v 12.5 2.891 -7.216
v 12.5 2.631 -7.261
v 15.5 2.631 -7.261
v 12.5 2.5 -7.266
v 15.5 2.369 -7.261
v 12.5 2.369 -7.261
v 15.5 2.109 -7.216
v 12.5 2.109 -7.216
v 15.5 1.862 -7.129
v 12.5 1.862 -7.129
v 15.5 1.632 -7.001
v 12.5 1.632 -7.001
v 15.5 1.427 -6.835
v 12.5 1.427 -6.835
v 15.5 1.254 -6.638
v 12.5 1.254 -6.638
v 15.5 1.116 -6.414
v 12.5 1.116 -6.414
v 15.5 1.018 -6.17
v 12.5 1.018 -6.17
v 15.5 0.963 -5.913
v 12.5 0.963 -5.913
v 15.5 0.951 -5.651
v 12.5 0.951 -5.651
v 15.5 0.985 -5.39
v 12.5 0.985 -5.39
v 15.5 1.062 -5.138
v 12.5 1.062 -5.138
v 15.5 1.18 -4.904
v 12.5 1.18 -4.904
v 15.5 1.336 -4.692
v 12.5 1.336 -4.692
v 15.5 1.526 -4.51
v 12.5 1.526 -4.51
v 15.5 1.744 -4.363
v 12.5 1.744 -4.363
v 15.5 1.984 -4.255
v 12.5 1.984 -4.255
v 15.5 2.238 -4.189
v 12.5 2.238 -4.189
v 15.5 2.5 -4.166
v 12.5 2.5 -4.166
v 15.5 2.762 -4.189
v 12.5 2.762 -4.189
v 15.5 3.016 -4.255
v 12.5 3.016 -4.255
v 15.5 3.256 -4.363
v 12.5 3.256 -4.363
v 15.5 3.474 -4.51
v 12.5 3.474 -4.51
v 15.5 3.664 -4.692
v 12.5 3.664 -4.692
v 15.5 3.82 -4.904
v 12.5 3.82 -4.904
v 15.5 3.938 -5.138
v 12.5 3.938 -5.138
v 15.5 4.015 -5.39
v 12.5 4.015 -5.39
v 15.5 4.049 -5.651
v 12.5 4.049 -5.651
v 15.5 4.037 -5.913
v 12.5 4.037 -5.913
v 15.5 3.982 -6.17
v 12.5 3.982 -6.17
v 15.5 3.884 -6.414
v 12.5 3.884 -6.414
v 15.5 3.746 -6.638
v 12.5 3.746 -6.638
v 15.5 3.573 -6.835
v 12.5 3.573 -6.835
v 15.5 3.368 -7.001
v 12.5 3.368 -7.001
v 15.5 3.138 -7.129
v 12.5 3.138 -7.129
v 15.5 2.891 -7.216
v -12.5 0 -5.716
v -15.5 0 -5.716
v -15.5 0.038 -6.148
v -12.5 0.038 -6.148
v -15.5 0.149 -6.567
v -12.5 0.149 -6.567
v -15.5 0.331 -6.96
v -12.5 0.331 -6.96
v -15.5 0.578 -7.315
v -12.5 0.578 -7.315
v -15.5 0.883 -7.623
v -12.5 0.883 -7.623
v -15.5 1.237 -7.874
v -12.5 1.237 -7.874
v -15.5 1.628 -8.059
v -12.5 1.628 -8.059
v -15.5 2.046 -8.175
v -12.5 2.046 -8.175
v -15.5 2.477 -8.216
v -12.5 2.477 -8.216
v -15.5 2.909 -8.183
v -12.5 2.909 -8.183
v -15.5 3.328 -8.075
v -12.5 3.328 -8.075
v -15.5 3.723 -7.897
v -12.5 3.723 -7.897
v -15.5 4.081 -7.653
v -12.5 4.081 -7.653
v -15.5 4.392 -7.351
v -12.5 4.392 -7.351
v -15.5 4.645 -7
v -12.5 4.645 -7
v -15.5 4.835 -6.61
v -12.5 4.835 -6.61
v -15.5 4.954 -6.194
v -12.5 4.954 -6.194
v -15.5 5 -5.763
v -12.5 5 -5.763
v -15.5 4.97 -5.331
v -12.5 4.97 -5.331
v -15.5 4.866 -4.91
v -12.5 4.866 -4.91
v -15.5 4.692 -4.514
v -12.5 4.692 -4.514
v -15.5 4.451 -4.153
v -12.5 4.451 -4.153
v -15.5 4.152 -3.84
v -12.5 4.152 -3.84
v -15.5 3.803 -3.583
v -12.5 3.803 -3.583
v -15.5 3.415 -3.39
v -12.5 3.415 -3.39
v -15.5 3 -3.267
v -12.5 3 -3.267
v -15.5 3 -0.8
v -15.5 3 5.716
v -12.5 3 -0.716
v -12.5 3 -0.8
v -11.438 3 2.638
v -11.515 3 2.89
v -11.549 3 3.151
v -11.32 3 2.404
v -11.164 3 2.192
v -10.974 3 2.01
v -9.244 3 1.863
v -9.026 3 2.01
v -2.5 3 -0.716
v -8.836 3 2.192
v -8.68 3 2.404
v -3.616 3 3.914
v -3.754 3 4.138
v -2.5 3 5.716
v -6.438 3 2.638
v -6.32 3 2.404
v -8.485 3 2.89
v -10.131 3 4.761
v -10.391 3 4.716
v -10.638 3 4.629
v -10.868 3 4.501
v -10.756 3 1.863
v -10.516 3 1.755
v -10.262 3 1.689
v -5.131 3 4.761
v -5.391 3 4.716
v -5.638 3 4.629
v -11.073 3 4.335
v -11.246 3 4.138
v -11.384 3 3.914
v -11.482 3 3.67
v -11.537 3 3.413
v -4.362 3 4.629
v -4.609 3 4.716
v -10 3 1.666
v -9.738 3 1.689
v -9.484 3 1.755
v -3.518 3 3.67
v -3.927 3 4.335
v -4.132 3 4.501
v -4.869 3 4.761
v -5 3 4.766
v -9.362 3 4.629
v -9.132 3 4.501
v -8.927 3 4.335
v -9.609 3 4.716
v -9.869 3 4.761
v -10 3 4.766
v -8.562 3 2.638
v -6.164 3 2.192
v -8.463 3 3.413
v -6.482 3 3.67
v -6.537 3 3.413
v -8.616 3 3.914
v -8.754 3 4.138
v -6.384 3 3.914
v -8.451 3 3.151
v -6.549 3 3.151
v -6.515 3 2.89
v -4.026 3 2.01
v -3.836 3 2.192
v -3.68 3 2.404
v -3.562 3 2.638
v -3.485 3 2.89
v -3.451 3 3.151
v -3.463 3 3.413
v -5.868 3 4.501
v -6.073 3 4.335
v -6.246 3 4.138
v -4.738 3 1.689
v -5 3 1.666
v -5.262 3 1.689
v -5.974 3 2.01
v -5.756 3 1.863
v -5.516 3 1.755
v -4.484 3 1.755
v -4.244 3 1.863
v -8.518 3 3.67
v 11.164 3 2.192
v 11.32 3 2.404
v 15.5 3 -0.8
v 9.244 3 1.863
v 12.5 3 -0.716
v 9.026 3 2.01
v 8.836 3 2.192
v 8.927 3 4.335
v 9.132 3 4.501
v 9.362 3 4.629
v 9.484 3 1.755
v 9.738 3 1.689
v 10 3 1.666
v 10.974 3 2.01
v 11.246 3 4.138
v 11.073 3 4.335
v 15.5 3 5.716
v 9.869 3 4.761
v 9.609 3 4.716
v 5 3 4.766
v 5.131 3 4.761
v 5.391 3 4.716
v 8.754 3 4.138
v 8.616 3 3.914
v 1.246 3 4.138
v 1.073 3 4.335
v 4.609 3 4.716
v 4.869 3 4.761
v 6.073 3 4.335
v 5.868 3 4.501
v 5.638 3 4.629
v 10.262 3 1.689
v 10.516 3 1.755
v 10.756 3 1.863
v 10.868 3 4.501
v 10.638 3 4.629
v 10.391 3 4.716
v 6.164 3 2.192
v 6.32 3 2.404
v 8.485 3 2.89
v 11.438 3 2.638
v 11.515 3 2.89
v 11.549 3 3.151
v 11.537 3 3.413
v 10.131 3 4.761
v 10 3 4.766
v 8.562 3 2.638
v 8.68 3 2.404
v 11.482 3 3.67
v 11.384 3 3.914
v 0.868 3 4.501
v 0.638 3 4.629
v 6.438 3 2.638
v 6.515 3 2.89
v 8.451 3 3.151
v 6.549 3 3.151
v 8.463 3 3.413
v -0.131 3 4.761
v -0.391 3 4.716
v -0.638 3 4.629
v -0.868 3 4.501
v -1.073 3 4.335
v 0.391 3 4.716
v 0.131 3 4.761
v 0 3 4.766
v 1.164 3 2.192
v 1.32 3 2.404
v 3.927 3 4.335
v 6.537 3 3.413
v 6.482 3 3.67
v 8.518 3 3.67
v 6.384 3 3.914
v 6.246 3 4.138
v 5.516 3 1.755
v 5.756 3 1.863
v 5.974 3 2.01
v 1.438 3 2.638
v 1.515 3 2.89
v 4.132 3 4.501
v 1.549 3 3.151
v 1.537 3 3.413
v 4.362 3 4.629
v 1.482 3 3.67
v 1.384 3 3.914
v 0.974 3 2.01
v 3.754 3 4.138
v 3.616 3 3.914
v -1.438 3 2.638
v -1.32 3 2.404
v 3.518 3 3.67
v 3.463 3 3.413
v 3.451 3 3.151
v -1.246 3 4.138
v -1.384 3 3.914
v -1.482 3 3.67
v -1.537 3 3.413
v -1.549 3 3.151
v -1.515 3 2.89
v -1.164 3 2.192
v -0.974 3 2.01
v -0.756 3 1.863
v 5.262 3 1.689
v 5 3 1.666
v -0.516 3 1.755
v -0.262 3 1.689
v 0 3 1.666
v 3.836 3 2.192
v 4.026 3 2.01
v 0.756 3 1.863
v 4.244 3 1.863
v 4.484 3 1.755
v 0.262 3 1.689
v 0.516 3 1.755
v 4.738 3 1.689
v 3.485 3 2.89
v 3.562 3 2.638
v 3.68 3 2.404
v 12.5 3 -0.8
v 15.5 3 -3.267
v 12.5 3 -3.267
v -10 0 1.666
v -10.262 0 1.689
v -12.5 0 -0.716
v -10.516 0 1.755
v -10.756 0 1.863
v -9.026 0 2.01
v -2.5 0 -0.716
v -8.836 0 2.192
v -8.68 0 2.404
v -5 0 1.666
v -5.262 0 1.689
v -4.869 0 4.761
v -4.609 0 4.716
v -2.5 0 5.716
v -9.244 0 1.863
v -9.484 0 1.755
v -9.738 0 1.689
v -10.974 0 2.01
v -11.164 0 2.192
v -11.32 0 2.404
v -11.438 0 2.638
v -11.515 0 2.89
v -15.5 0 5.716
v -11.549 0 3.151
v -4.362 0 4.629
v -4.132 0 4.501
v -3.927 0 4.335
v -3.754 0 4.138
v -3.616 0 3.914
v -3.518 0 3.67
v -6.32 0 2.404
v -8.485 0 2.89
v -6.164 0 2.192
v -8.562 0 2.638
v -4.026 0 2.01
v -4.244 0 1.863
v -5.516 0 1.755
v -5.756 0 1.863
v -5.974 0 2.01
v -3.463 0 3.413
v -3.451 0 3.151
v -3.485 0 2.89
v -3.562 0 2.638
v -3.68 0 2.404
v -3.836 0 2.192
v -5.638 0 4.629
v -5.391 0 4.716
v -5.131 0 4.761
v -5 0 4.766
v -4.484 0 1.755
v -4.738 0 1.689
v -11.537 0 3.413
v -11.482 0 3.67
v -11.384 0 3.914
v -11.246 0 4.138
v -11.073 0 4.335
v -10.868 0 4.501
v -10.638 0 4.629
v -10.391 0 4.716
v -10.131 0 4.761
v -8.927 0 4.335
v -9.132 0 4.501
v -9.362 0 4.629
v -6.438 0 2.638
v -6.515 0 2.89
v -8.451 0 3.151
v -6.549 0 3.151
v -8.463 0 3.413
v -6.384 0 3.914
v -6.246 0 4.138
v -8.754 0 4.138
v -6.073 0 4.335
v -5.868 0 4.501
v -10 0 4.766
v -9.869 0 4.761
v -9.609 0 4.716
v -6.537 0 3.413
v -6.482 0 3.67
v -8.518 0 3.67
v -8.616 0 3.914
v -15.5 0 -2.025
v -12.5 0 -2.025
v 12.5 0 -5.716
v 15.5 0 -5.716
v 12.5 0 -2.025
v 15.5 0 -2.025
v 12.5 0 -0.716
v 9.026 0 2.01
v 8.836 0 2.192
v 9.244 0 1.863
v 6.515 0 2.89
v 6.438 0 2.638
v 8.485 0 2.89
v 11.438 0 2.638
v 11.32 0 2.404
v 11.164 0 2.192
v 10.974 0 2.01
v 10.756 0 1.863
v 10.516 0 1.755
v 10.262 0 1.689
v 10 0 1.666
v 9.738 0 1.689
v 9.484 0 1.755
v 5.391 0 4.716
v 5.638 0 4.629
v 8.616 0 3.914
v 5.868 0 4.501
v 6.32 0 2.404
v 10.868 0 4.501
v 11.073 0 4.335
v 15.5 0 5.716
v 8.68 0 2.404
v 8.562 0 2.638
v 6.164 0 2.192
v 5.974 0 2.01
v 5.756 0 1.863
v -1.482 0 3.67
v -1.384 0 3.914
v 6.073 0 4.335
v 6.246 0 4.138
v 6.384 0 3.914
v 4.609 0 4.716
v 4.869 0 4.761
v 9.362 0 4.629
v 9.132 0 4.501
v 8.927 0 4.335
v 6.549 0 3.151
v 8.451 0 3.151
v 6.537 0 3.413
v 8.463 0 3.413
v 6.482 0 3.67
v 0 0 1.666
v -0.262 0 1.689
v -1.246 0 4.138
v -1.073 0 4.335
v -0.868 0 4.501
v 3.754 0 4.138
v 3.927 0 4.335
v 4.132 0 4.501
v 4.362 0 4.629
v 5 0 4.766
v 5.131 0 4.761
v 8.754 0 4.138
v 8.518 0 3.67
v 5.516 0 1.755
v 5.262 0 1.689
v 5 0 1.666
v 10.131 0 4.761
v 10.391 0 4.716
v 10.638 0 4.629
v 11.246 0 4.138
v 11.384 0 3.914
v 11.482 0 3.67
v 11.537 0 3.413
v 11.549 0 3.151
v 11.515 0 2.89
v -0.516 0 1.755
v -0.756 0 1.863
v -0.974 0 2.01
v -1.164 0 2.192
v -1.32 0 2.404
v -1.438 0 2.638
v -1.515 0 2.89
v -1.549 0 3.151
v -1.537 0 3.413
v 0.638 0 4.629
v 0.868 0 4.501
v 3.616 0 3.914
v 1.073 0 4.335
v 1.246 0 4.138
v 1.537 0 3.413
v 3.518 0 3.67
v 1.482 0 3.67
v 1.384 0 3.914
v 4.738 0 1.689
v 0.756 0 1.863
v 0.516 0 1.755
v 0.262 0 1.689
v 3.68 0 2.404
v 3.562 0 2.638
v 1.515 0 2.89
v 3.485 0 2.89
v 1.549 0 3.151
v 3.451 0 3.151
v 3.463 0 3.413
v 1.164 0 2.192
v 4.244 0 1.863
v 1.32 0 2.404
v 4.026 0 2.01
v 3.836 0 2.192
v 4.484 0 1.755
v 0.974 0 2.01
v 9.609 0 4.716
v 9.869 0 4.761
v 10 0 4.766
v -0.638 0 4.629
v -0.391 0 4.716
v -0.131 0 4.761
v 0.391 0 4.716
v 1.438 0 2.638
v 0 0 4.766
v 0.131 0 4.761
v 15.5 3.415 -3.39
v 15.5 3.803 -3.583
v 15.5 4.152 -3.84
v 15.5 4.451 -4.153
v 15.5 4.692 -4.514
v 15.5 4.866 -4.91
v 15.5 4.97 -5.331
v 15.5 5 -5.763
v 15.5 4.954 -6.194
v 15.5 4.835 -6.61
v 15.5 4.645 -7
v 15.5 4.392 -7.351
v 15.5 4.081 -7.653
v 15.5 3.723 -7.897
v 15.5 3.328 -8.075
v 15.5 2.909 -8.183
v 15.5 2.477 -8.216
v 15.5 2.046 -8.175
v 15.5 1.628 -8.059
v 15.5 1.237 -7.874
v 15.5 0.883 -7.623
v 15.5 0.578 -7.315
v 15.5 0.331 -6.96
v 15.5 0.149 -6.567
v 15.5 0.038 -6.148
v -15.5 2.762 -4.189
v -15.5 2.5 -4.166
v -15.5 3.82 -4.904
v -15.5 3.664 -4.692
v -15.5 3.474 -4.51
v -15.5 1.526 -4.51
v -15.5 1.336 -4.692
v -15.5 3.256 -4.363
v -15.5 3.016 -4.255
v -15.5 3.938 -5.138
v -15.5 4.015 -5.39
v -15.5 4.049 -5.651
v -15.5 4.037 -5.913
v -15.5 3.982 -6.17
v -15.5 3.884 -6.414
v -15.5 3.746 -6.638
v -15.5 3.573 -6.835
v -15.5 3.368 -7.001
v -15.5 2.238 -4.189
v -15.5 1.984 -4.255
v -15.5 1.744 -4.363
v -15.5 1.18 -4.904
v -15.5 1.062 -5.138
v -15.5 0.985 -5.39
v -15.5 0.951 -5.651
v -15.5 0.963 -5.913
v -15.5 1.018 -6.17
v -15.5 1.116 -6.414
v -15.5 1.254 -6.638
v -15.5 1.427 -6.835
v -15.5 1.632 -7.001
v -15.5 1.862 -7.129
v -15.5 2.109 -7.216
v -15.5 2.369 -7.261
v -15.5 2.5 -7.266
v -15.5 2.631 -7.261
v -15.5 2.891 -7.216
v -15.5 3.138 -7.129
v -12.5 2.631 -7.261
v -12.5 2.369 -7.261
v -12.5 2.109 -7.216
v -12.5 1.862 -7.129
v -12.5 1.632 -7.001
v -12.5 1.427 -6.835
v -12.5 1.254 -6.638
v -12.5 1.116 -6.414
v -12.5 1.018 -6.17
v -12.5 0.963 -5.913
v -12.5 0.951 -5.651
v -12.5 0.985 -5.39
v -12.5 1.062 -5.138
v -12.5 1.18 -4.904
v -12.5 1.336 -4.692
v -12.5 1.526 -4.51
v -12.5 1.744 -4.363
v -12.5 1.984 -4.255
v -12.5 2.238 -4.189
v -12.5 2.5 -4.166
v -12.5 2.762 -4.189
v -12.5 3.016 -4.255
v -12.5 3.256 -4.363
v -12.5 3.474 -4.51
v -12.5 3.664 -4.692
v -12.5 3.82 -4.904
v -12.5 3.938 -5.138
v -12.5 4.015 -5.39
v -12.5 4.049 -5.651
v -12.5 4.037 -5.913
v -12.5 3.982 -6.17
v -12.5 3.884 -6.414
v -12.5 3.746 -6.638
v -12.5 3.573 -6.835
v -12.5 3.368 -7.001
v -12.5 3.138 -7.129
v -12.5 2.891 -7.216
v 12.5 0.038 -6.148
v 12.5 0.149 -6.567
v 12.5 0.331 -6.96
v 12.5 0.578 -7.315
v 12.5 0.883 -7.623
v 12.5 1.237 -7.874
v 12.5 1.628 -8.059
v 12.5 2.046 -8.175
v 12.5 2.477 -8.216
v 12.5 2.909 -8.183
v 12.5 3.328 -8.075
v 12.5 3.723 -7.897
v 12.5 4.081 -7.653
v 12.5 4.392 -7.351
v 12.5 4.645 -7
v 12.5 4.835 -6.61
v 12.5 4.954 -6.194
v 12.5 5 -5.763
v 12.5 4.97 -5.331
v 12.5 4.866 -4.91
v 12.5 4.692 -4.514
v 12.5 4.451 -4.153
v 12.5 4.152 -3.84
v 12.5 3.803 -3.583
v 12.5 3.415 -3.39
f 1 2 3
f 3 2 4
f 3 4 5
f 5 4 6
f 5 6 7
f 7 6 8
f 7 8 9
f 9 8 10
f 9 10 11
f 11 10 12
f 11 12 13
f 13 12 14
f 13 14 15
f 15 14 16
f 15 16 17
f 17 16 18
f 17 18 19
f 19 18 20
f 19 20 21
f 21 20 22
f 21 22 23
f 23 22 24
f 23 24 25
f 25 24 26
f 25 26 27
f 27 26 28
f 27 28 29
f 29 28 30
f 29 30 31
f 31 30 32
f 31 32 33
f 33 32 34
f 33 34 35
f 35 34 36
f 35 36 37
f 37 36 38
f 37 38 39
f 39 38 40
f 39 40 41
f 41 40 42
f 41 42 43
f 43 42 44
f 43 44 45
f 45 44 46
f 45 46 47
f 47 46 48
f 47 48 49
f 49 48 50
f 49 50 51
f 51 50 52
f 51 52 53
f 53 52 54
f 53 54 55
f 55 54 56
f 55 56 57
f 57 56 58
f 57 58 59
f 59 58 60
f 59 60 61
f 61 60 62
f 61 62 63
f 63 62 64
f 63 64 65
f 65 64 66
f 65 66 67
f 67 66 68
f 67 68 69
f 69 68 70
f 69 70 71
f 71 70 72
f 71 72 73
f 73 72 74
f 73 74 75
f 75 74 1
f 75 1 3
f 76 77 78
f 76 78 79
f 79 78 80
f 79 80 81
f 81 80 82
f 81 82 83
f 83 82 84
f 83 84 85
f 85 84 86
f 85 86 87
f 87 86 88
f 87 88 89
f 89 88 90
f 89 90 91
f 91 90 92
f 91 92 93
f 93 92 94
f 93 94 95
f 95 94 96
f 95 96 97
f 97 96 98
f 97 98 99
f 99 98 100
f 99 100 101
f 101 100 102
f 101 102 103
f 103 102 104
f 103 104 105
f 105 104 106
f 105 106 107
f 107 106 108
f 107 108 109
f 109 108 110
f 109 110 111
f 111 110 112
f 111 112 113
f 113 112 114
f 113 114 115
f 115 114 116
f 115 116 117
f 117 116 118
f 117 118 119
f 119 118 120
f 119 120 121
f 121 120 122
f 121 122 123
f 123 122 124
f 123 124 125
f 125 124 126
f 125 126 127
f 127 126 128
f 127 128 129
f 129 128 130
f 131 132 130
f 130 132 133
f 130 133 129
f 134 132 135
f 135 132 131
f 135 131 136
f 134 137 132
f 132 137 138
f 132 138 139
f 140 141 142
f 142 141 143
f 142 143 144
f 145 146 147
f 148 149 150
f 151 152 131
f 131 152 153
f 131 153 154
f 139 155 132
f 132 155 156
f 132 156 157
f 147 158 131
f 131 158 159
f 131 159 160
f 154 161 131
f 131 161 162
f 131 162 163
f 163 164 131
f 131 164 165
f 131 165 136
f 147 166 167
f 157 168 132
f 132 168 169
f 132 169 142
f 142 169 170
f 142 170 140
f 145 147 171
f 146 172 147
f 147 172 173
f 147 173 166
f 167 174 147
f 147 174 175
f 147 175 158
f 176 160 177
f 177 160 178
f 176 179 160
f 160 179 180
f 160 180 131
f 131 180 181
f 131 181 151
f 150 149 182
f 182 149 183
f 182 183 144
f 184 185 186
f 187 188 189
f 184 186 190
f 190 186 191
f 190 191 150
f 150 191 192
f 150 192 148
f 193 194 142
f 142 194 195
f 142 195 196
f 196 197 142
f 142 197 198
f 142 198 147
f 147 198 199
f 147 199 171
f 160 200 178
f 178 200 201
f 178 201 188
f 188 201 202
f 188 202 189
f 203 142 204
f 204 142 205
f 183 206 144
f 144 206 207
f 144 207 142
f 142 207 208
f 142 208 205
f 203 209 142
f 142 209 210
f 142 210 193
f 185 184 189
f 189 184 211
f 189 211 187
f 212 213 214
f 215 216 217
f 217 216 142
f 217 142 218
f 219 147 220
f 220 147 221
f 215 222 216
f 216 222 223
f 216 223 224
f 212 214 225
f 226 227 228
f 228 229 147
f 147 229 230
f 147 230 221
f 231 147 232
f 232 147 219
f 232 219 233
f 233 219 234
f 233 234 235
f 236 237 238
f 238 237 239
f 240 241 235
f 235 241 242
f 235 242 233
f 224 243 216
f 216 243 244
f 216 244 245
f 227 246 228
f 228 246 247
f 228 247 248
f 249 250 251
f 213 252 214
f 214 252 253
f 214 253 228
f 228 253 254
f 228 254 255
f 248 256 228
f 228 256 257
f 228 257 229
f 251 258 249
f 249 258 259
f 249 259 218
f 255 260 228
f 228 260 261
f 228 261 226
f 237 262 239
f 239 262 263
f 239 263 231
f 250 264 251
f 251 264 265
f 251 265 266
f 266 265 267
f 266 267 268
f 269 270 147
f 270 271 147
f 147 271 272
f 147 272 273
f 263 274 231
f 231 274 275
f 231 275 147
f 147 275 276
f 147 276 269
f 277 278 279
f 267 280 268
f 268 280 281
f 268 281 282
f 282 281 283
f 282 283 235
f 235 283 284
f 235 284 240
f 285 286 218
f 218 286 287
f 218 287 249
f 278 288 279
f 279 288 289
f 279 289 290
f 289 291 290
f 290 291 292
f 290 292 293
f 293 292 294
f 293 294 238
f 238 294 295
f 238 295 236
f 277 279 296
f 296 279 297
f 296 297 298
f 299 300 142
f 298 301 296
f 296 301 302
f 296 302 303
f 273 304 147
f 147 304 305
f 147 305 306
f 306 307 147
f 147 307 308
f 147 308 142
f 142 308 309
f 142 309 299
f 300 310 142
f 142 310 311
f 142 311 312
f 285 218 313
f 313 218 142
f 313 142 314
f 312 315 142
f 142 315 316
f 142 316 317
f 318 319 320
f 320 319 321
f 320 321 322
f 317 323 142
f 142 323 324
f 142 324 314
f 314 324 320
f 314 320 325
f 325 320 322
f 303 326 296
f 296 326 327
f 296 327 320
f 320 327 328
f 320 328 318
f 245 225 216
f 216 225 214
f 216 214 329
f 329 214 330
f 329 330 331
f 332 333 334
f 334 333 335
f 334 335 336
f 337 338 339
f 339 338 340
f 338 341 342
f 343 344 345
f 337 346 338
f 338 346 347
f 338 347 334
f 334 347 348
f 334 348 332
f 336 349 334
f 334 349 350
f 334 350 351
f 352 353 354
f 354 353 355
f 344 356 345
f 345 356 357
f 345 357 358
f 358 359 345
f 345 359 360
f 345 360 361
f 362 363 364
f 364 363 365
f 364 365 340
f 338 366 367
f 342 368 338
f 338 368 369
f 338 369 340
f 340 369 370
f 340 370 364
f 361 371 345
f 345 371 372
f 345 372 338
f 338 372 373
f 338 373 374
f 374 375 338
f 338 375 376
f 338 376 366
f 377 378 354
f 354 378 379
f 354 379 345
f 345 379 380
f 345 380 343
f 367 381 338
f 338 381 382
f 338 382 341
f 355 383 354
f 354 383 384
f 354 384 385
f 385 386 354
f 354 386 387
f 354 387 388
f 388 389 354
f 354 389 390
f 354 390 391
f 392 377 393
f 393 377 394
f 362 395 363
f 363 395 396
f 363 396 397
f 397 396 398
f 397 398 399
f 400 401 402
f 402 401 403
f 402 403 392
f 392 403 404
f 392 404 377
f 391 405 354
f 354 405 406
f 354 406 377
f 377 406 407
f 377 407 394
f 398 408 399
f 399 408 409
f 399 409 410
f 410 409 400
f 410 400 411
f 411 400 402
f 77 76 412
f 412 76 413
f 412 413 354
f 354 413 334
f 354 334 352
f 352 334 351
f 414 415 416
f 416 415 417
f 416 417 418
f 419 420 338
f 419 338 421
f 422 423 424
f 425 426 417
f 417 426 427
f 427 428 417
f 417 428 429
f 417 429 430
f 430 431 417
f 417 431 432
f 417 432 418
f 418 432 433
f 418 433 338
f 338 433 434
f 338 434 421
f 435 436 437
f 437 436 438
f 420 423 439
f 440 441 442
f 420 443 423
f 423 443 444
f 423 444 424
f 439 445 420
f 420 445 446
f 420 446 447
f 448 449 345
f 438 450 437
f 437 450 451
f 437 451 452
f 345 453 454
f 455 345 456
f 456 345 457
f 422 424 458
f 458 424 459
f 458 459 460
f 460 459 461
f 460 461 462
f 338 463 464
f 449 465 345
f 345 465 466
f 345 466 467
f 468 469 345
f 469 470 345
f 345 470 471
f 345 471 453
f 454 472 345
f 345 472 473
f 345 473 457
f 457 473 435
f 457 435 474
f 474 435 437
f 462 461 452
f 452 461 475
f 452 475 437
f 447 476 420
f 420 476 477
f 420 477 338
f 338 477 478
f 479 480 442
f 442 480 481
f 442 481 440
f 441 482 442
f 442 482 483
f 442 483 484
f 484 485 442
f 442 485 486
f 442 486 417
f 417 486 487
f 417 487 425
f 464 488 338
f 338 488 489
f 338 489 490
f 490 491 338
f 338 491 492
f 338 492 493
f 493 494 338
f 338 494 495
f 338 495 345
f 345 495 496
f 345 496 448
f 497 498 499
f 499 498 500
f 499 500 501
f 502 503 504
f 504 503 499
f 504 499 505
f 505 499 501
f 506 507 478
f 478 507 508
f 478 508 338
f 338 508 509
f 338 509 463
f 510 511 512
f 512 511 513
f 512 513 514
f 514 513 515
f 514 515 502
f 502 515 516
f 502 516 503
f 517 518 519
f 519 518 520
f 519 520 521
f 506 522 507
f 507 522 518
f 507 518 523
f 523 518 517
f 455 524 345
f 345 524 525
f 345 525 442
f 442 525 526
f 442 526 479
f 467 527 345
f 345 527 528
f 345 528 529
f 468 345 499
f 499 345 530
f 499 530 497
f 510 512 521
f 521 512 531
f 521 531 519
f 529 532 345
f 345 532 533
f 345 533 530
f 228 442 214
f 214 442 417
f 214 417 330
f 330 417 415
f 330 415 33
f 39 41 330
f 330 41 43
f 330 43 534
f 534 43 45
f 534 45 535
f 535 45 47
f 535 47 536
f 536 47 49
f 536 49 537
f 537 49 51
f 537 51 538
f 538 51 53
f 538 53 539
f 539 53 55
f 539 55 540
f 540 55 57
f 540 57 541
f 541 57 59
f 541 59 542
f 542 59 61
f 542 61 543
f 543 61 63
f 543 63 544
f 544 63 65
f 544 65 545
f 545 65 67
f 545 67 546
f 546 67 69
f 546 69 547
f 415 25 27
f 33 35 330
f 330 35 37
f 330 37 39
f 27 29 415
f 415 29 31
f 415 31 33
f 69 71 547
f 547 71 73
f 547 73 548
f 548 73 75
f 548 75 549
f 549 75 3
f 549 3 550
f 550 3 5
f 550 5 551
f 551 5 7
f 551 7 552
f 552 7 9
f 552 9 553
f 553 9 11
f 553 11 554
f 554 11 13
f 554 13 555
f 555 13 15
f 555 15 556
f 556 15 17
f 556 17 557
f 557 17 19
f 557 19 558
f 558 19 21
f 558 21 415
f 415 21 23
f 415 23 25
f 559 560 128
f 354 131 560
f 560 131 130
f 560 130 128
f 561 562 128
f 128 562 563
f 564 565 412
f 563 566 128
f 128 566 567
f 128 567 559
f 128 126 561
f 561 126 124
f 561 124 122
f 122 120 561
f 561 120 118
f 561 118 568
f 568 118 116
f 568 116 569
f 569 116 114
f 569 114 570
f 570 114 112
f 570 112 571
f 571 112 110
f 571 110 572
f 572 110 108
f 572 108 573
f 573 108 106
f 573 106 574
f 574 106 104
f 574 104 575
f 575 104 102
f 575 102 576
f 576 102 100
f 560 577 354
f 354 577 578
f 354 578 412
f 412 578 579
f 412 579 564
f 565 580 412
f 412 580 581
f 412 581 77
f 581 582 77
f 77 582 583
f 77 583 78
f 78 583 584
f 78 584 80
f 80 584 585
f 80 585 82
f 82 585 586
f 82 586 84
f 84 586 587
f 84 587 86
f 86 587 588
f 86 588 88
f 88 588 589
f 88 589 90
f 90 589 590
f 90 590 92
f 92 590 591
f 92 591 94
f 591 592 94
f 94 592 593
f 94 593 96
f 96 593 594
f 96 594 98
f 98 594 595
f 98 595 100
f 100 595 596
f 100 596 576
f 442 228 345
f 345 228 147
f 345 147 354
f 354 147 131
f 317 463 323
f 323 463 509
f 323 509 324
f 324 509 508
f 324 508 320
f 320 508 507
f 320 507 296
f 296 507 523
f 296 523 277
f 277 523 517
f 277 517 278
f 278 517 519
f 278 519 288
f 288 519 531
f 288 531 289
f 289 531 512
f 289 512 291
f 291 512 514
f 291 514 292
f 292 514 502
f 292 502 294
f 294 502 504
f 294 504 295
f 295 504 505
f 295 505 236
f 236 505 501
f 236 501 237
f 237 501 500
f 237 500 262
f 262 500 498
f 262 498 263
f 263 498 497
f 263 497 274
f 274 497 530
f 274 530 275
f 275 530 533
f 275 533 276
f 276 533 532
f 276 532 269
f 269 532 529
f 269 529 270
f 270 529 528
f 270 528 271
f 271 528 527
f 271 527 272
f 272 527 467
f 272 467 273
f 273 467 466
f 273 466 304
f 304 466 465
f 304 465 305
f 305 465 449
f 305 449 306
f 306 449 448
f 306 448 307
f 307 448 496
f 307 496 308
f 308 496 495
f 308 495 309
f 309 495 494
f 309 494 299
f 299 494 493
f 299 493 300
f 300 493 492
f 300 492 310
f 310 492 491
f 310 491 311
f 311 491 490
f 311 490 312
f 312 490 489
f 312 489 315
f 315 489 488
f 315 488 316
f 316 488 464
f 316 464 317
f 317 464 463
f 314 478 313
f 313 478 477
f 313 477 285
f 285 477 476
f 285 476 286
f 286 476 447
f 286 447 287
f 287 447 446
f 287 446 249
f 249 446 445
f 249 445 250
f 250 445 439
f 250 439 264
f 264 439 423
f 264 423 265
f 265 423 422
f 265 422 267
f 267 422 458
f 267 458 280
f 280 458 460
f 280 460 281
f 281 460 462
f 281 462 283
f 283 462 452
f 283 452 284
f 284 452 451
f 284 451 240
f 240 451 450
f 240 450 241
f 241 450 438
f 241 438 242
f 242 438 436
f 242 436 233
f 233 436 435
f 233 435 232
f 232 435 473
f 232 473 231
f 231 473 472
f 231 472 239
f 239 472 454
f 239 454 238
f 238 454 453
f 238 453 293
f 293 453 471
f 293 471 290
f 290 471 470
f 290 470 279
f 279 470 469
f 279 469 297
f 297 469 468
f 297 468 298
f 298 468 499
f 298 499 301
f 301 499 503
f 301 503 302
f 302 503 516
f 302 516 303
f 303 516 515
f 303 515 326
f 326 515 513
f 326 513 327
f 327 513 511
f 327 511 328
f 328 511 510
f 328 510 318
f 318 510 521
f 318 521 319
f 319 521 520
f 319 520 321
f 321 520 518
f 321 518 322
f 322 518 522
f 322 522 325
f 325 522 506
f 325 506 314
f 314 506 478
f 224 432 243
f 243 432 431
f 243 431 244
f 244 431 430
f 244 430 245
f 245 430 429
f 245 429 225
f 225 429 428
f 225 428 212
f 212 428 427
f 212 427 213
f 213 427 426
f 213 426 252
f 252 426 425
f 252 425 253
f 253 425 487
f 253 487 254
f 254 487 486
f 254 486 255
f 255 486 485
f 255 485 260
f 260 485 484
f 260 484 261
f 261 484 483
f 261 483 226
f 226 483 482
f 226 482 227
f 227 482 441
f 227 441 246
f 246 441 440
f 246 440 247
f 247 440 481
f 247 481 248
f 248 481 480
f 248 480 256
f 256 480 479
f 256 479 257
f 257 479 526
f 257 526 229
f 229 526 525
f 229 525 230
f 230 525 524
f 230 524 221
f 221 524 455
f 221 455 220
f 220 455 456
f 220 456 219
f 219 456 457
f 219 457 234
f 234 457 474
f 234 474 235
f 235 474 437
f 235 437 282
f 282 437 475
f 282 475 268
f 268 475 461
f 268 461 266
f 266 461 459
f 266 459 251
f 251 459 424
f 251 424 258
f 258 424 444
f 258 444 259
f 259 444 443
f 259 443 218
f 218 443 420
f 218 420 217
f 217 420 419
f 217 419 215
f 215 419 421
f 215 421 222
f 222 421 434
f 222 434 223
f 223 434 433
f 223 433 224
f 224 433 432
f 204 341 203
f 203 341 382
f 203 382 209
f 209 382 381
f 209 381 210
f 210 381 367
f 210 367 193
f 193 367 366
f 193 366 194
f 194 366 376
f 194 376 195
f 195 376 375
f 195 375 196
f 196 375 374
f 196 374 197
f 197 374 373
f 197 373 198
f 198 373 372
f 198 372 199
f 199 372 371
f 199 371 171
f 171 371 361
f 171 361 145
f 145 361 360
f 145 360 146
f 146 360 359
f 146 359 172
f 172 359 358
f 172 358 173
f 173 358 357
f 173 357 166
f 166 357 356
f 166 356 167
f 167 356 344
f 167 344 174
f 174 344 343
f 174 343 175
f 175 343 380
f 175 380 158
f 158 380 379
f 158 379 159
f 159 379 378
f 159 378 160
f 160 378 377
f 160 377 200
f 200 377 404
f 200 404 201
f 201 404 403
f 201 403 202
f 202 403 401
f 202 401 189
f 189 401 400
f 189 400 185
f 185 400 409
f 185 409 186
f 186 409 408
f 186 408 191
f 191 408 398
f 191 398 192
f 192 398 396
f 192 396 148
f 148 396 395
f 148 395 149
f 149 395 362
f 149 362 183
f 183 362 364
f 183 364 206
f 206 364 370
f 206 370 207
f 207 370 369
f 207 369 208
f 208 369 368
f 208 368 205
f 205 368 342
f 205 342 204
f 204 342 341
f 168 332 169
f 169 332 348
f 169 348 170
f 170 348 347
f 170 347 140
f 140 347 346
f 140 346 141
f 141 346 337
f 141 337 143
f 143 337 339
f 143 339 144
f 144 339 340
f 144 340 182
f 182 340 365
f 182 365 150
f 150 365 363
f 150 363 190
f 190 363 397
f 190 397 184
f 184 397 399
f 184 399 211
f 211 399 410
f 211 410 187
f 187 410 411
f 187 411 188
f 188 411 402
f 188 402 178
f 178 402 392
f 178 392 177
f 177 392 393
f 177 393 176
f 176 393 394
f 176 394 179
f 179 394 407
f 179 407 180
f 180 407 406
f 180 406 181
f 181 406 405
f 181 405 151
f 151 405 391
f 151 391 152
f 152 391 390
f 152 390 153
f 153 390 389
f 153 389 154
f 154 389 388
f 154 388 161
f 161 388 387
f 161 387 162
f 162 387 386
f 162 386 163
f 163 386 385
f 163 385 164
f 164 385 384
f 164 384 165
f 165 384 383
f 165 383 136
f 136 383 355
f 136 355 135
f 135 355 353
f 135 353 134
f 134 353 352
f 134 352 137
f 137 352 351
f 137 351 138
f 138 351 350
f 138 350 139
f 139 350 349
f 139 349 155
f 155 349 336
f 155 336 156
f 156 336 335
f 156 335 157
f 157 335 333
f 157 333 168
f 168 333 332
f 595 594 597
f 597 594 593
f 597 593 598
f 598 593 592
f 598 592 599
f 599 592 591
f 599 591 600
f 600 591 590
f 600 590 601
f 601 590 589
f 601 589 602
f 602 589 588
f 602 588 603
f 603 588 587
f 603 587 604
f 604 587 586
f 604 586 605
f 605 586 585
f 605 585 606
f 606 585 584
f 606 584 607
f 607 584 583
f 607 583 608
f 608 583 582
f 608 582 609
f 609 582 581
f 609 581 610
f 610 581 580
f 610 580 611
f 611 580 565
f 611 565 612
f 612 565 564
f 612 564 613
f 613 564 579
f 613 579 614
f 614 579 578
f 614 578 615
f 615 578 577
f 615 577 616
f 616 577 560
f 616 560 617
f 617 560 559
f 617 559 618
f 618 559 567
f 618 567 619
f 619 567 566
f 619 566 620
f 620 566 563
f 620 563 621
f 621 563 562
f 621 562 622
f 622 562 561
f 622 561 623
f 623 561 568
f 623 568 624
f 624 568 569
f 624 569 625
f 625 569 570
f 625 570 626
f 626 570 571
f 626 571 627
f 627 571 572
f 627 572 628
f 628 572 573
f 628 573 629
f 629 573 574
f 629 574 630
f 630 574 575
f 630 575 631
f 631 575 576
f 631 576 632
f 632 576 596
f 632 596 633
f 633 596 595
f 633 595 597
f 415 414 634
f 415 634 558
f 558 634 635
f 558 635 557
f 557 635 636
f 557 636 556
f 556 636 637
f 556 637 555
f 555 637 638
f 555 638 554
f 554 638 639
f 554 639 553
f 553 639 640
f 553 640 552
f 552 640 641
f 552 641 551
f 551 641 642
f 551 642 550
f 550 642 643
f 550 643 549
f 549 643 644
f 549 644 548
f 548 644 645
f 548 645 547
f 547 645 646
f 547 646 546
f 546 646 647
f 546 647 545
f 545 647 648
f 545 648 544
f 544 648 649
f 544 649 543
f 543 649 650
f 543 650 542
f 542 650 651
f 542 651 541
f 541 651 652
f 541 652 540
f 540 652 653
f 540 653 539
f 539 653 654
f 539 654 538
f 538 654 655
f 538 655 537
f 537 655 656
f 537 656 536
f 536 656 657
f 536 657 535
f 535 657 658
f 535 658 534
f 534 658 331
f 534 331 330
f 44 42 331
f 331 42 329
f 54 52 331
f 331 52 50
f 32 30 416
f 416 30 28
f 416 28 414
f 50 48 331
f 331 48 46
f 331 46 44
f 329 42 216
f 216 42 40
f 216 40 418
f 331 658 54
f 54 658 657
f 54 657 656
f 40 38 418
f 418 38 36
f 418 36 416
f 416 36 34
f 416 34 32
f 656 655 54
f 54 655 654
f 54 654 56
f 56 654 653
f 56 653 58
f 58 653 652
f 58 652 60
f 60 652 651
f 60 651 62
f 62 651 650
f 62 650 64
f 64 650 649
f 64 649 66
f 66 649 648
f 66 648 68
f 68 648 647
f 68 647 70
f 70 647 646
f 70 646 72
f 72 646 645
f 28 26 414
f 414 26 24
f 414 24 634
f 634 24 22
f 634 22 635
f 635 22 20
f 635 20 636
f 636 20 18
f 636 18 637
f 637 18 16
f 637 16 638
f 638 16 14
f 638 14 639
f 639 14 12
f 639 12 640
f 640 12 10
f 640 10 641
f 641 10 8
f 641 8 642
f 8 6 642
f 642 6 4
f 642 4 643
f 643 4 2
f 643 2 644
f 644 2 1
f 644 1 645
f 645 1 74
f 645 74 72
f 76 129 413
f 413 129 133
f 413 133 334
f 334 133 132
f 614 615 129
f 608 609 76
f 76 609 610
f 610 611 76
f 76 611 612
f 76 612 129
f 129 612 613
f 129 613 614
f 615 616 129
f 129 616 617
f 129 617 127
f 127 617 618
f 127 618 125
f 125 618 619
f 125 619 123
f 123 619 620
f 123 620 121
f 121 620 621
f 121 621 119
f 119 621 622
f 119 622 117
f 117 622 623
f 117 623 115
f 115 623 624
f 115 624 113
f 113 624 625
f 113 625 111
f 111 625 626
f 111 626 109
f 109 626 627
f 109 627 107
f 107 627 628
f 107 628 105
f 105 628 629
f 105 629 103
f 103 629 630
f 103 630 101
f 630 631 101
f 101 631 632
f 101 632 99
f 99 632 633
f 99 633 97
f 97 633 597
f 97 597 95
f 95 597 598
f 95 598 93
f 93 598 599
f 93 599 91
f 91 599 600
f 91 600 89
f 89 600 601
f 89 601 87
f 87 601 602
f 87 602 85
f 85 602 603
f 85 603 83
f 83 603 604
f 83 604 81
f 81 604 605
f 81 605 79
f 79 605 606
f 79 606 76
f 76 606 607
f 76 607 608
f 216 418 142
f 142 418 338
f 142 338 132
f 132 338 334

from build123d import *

# Parameters (mm, degrees)
SKETCH1_W           = 31
SKETCH1_H           = 11.43285124
SKETCH1_R           = 1.55
BOSS_EXTRUDE1_DEPTH = 3
SKETCH2_R           = 1.55
CUT_EXTRUDE1_DEPTH  = 31
SKETCH2_3_R         = 2.5
SKETCH2_3_R_2       = 1.55
BOSS_EXTRUDE2_DEPTH = 31
SKETCH3_W           = 25
SKETCH3_H           = 7.5
CUT_EXTRUDE2_DEPTH  = 19.241700852


with BuildPart() as part:
    # Sketch1 → Boss-Extrude1 (new body)
    with BuildSketch(Plane(origin=(0, 0, 0), x_dir=(1, 0, 0), z_dir=(0, 1, 0))):
        Rectangle(SKETCH1_W, SKETCH1_H)
        with Locations(Location((0, -3.21642562, 0), (0, 0, 270))):
            Circle(SKETCH1_R, mode=Mode.SUBTRACT)
        with Locations(Location((5, -3.21642562, 0), (0, 0, 270))):
            Circle(SKETCH1_R, mode=Mode.SUBTRACT)
        with Locations(Location((10, -3.21642562, 0), (0, 0, 270))):
            Circle(SKETCH1_R, mode=Mode.SUBTRACT)
        with Locations(Location((-5, -3.21642562, 0), (0, 0, 270))):
            Circle(SKETCH1_R, mode=Mode.SUBTRACT)
        with Locations(Location((-10, -3.21642562, 0), (0, 0, 270))):
            Circle(SKETCH1_R, mode=Mode.SUBTRACT)
    extrude(amount=BOSS_EXTRUDE1_DEPTH)

    # Sketch2 → Cut-Extrude1 (cut)
    with BuildSketch(Plane.ZY.offset(15.5)):
        with Locations((-5.71642562, 2.5)):
            Circle(SKETCH2_R)
    extrude(amount=-CUT_EXTRUDE1_DEPTH, mode=Mode.SUBTRACT)

    # Sketch2<3> → Boss-Extrude2 (add)
    with BuildSketch(Plane.ZY.offset(15.5)):
        with Locations((-5.71642562, 2.5)):
            Circle(SKETCH2_3_R)
        with Locations((-5.71642562, 2.5)):
            Circle(SKETCH2_3_R_2, mode=Mode.SUBTRACT)
    extrude(amount=-BOSS_EXTRUDE2_DEPTH)

    # Sketch3 → Cut-Extrude2 (cut, through all)
    with BuildSketch(Plane.XZ):
        with Locations((0, -4.46642562)):
            Rectangle(SKETCH3_W, SKETCH3_H)
    extrude(amount=-CUT_EXTRUDE2_DEPTH, mode=Mode.SUBTRACT)


solid = part.part
